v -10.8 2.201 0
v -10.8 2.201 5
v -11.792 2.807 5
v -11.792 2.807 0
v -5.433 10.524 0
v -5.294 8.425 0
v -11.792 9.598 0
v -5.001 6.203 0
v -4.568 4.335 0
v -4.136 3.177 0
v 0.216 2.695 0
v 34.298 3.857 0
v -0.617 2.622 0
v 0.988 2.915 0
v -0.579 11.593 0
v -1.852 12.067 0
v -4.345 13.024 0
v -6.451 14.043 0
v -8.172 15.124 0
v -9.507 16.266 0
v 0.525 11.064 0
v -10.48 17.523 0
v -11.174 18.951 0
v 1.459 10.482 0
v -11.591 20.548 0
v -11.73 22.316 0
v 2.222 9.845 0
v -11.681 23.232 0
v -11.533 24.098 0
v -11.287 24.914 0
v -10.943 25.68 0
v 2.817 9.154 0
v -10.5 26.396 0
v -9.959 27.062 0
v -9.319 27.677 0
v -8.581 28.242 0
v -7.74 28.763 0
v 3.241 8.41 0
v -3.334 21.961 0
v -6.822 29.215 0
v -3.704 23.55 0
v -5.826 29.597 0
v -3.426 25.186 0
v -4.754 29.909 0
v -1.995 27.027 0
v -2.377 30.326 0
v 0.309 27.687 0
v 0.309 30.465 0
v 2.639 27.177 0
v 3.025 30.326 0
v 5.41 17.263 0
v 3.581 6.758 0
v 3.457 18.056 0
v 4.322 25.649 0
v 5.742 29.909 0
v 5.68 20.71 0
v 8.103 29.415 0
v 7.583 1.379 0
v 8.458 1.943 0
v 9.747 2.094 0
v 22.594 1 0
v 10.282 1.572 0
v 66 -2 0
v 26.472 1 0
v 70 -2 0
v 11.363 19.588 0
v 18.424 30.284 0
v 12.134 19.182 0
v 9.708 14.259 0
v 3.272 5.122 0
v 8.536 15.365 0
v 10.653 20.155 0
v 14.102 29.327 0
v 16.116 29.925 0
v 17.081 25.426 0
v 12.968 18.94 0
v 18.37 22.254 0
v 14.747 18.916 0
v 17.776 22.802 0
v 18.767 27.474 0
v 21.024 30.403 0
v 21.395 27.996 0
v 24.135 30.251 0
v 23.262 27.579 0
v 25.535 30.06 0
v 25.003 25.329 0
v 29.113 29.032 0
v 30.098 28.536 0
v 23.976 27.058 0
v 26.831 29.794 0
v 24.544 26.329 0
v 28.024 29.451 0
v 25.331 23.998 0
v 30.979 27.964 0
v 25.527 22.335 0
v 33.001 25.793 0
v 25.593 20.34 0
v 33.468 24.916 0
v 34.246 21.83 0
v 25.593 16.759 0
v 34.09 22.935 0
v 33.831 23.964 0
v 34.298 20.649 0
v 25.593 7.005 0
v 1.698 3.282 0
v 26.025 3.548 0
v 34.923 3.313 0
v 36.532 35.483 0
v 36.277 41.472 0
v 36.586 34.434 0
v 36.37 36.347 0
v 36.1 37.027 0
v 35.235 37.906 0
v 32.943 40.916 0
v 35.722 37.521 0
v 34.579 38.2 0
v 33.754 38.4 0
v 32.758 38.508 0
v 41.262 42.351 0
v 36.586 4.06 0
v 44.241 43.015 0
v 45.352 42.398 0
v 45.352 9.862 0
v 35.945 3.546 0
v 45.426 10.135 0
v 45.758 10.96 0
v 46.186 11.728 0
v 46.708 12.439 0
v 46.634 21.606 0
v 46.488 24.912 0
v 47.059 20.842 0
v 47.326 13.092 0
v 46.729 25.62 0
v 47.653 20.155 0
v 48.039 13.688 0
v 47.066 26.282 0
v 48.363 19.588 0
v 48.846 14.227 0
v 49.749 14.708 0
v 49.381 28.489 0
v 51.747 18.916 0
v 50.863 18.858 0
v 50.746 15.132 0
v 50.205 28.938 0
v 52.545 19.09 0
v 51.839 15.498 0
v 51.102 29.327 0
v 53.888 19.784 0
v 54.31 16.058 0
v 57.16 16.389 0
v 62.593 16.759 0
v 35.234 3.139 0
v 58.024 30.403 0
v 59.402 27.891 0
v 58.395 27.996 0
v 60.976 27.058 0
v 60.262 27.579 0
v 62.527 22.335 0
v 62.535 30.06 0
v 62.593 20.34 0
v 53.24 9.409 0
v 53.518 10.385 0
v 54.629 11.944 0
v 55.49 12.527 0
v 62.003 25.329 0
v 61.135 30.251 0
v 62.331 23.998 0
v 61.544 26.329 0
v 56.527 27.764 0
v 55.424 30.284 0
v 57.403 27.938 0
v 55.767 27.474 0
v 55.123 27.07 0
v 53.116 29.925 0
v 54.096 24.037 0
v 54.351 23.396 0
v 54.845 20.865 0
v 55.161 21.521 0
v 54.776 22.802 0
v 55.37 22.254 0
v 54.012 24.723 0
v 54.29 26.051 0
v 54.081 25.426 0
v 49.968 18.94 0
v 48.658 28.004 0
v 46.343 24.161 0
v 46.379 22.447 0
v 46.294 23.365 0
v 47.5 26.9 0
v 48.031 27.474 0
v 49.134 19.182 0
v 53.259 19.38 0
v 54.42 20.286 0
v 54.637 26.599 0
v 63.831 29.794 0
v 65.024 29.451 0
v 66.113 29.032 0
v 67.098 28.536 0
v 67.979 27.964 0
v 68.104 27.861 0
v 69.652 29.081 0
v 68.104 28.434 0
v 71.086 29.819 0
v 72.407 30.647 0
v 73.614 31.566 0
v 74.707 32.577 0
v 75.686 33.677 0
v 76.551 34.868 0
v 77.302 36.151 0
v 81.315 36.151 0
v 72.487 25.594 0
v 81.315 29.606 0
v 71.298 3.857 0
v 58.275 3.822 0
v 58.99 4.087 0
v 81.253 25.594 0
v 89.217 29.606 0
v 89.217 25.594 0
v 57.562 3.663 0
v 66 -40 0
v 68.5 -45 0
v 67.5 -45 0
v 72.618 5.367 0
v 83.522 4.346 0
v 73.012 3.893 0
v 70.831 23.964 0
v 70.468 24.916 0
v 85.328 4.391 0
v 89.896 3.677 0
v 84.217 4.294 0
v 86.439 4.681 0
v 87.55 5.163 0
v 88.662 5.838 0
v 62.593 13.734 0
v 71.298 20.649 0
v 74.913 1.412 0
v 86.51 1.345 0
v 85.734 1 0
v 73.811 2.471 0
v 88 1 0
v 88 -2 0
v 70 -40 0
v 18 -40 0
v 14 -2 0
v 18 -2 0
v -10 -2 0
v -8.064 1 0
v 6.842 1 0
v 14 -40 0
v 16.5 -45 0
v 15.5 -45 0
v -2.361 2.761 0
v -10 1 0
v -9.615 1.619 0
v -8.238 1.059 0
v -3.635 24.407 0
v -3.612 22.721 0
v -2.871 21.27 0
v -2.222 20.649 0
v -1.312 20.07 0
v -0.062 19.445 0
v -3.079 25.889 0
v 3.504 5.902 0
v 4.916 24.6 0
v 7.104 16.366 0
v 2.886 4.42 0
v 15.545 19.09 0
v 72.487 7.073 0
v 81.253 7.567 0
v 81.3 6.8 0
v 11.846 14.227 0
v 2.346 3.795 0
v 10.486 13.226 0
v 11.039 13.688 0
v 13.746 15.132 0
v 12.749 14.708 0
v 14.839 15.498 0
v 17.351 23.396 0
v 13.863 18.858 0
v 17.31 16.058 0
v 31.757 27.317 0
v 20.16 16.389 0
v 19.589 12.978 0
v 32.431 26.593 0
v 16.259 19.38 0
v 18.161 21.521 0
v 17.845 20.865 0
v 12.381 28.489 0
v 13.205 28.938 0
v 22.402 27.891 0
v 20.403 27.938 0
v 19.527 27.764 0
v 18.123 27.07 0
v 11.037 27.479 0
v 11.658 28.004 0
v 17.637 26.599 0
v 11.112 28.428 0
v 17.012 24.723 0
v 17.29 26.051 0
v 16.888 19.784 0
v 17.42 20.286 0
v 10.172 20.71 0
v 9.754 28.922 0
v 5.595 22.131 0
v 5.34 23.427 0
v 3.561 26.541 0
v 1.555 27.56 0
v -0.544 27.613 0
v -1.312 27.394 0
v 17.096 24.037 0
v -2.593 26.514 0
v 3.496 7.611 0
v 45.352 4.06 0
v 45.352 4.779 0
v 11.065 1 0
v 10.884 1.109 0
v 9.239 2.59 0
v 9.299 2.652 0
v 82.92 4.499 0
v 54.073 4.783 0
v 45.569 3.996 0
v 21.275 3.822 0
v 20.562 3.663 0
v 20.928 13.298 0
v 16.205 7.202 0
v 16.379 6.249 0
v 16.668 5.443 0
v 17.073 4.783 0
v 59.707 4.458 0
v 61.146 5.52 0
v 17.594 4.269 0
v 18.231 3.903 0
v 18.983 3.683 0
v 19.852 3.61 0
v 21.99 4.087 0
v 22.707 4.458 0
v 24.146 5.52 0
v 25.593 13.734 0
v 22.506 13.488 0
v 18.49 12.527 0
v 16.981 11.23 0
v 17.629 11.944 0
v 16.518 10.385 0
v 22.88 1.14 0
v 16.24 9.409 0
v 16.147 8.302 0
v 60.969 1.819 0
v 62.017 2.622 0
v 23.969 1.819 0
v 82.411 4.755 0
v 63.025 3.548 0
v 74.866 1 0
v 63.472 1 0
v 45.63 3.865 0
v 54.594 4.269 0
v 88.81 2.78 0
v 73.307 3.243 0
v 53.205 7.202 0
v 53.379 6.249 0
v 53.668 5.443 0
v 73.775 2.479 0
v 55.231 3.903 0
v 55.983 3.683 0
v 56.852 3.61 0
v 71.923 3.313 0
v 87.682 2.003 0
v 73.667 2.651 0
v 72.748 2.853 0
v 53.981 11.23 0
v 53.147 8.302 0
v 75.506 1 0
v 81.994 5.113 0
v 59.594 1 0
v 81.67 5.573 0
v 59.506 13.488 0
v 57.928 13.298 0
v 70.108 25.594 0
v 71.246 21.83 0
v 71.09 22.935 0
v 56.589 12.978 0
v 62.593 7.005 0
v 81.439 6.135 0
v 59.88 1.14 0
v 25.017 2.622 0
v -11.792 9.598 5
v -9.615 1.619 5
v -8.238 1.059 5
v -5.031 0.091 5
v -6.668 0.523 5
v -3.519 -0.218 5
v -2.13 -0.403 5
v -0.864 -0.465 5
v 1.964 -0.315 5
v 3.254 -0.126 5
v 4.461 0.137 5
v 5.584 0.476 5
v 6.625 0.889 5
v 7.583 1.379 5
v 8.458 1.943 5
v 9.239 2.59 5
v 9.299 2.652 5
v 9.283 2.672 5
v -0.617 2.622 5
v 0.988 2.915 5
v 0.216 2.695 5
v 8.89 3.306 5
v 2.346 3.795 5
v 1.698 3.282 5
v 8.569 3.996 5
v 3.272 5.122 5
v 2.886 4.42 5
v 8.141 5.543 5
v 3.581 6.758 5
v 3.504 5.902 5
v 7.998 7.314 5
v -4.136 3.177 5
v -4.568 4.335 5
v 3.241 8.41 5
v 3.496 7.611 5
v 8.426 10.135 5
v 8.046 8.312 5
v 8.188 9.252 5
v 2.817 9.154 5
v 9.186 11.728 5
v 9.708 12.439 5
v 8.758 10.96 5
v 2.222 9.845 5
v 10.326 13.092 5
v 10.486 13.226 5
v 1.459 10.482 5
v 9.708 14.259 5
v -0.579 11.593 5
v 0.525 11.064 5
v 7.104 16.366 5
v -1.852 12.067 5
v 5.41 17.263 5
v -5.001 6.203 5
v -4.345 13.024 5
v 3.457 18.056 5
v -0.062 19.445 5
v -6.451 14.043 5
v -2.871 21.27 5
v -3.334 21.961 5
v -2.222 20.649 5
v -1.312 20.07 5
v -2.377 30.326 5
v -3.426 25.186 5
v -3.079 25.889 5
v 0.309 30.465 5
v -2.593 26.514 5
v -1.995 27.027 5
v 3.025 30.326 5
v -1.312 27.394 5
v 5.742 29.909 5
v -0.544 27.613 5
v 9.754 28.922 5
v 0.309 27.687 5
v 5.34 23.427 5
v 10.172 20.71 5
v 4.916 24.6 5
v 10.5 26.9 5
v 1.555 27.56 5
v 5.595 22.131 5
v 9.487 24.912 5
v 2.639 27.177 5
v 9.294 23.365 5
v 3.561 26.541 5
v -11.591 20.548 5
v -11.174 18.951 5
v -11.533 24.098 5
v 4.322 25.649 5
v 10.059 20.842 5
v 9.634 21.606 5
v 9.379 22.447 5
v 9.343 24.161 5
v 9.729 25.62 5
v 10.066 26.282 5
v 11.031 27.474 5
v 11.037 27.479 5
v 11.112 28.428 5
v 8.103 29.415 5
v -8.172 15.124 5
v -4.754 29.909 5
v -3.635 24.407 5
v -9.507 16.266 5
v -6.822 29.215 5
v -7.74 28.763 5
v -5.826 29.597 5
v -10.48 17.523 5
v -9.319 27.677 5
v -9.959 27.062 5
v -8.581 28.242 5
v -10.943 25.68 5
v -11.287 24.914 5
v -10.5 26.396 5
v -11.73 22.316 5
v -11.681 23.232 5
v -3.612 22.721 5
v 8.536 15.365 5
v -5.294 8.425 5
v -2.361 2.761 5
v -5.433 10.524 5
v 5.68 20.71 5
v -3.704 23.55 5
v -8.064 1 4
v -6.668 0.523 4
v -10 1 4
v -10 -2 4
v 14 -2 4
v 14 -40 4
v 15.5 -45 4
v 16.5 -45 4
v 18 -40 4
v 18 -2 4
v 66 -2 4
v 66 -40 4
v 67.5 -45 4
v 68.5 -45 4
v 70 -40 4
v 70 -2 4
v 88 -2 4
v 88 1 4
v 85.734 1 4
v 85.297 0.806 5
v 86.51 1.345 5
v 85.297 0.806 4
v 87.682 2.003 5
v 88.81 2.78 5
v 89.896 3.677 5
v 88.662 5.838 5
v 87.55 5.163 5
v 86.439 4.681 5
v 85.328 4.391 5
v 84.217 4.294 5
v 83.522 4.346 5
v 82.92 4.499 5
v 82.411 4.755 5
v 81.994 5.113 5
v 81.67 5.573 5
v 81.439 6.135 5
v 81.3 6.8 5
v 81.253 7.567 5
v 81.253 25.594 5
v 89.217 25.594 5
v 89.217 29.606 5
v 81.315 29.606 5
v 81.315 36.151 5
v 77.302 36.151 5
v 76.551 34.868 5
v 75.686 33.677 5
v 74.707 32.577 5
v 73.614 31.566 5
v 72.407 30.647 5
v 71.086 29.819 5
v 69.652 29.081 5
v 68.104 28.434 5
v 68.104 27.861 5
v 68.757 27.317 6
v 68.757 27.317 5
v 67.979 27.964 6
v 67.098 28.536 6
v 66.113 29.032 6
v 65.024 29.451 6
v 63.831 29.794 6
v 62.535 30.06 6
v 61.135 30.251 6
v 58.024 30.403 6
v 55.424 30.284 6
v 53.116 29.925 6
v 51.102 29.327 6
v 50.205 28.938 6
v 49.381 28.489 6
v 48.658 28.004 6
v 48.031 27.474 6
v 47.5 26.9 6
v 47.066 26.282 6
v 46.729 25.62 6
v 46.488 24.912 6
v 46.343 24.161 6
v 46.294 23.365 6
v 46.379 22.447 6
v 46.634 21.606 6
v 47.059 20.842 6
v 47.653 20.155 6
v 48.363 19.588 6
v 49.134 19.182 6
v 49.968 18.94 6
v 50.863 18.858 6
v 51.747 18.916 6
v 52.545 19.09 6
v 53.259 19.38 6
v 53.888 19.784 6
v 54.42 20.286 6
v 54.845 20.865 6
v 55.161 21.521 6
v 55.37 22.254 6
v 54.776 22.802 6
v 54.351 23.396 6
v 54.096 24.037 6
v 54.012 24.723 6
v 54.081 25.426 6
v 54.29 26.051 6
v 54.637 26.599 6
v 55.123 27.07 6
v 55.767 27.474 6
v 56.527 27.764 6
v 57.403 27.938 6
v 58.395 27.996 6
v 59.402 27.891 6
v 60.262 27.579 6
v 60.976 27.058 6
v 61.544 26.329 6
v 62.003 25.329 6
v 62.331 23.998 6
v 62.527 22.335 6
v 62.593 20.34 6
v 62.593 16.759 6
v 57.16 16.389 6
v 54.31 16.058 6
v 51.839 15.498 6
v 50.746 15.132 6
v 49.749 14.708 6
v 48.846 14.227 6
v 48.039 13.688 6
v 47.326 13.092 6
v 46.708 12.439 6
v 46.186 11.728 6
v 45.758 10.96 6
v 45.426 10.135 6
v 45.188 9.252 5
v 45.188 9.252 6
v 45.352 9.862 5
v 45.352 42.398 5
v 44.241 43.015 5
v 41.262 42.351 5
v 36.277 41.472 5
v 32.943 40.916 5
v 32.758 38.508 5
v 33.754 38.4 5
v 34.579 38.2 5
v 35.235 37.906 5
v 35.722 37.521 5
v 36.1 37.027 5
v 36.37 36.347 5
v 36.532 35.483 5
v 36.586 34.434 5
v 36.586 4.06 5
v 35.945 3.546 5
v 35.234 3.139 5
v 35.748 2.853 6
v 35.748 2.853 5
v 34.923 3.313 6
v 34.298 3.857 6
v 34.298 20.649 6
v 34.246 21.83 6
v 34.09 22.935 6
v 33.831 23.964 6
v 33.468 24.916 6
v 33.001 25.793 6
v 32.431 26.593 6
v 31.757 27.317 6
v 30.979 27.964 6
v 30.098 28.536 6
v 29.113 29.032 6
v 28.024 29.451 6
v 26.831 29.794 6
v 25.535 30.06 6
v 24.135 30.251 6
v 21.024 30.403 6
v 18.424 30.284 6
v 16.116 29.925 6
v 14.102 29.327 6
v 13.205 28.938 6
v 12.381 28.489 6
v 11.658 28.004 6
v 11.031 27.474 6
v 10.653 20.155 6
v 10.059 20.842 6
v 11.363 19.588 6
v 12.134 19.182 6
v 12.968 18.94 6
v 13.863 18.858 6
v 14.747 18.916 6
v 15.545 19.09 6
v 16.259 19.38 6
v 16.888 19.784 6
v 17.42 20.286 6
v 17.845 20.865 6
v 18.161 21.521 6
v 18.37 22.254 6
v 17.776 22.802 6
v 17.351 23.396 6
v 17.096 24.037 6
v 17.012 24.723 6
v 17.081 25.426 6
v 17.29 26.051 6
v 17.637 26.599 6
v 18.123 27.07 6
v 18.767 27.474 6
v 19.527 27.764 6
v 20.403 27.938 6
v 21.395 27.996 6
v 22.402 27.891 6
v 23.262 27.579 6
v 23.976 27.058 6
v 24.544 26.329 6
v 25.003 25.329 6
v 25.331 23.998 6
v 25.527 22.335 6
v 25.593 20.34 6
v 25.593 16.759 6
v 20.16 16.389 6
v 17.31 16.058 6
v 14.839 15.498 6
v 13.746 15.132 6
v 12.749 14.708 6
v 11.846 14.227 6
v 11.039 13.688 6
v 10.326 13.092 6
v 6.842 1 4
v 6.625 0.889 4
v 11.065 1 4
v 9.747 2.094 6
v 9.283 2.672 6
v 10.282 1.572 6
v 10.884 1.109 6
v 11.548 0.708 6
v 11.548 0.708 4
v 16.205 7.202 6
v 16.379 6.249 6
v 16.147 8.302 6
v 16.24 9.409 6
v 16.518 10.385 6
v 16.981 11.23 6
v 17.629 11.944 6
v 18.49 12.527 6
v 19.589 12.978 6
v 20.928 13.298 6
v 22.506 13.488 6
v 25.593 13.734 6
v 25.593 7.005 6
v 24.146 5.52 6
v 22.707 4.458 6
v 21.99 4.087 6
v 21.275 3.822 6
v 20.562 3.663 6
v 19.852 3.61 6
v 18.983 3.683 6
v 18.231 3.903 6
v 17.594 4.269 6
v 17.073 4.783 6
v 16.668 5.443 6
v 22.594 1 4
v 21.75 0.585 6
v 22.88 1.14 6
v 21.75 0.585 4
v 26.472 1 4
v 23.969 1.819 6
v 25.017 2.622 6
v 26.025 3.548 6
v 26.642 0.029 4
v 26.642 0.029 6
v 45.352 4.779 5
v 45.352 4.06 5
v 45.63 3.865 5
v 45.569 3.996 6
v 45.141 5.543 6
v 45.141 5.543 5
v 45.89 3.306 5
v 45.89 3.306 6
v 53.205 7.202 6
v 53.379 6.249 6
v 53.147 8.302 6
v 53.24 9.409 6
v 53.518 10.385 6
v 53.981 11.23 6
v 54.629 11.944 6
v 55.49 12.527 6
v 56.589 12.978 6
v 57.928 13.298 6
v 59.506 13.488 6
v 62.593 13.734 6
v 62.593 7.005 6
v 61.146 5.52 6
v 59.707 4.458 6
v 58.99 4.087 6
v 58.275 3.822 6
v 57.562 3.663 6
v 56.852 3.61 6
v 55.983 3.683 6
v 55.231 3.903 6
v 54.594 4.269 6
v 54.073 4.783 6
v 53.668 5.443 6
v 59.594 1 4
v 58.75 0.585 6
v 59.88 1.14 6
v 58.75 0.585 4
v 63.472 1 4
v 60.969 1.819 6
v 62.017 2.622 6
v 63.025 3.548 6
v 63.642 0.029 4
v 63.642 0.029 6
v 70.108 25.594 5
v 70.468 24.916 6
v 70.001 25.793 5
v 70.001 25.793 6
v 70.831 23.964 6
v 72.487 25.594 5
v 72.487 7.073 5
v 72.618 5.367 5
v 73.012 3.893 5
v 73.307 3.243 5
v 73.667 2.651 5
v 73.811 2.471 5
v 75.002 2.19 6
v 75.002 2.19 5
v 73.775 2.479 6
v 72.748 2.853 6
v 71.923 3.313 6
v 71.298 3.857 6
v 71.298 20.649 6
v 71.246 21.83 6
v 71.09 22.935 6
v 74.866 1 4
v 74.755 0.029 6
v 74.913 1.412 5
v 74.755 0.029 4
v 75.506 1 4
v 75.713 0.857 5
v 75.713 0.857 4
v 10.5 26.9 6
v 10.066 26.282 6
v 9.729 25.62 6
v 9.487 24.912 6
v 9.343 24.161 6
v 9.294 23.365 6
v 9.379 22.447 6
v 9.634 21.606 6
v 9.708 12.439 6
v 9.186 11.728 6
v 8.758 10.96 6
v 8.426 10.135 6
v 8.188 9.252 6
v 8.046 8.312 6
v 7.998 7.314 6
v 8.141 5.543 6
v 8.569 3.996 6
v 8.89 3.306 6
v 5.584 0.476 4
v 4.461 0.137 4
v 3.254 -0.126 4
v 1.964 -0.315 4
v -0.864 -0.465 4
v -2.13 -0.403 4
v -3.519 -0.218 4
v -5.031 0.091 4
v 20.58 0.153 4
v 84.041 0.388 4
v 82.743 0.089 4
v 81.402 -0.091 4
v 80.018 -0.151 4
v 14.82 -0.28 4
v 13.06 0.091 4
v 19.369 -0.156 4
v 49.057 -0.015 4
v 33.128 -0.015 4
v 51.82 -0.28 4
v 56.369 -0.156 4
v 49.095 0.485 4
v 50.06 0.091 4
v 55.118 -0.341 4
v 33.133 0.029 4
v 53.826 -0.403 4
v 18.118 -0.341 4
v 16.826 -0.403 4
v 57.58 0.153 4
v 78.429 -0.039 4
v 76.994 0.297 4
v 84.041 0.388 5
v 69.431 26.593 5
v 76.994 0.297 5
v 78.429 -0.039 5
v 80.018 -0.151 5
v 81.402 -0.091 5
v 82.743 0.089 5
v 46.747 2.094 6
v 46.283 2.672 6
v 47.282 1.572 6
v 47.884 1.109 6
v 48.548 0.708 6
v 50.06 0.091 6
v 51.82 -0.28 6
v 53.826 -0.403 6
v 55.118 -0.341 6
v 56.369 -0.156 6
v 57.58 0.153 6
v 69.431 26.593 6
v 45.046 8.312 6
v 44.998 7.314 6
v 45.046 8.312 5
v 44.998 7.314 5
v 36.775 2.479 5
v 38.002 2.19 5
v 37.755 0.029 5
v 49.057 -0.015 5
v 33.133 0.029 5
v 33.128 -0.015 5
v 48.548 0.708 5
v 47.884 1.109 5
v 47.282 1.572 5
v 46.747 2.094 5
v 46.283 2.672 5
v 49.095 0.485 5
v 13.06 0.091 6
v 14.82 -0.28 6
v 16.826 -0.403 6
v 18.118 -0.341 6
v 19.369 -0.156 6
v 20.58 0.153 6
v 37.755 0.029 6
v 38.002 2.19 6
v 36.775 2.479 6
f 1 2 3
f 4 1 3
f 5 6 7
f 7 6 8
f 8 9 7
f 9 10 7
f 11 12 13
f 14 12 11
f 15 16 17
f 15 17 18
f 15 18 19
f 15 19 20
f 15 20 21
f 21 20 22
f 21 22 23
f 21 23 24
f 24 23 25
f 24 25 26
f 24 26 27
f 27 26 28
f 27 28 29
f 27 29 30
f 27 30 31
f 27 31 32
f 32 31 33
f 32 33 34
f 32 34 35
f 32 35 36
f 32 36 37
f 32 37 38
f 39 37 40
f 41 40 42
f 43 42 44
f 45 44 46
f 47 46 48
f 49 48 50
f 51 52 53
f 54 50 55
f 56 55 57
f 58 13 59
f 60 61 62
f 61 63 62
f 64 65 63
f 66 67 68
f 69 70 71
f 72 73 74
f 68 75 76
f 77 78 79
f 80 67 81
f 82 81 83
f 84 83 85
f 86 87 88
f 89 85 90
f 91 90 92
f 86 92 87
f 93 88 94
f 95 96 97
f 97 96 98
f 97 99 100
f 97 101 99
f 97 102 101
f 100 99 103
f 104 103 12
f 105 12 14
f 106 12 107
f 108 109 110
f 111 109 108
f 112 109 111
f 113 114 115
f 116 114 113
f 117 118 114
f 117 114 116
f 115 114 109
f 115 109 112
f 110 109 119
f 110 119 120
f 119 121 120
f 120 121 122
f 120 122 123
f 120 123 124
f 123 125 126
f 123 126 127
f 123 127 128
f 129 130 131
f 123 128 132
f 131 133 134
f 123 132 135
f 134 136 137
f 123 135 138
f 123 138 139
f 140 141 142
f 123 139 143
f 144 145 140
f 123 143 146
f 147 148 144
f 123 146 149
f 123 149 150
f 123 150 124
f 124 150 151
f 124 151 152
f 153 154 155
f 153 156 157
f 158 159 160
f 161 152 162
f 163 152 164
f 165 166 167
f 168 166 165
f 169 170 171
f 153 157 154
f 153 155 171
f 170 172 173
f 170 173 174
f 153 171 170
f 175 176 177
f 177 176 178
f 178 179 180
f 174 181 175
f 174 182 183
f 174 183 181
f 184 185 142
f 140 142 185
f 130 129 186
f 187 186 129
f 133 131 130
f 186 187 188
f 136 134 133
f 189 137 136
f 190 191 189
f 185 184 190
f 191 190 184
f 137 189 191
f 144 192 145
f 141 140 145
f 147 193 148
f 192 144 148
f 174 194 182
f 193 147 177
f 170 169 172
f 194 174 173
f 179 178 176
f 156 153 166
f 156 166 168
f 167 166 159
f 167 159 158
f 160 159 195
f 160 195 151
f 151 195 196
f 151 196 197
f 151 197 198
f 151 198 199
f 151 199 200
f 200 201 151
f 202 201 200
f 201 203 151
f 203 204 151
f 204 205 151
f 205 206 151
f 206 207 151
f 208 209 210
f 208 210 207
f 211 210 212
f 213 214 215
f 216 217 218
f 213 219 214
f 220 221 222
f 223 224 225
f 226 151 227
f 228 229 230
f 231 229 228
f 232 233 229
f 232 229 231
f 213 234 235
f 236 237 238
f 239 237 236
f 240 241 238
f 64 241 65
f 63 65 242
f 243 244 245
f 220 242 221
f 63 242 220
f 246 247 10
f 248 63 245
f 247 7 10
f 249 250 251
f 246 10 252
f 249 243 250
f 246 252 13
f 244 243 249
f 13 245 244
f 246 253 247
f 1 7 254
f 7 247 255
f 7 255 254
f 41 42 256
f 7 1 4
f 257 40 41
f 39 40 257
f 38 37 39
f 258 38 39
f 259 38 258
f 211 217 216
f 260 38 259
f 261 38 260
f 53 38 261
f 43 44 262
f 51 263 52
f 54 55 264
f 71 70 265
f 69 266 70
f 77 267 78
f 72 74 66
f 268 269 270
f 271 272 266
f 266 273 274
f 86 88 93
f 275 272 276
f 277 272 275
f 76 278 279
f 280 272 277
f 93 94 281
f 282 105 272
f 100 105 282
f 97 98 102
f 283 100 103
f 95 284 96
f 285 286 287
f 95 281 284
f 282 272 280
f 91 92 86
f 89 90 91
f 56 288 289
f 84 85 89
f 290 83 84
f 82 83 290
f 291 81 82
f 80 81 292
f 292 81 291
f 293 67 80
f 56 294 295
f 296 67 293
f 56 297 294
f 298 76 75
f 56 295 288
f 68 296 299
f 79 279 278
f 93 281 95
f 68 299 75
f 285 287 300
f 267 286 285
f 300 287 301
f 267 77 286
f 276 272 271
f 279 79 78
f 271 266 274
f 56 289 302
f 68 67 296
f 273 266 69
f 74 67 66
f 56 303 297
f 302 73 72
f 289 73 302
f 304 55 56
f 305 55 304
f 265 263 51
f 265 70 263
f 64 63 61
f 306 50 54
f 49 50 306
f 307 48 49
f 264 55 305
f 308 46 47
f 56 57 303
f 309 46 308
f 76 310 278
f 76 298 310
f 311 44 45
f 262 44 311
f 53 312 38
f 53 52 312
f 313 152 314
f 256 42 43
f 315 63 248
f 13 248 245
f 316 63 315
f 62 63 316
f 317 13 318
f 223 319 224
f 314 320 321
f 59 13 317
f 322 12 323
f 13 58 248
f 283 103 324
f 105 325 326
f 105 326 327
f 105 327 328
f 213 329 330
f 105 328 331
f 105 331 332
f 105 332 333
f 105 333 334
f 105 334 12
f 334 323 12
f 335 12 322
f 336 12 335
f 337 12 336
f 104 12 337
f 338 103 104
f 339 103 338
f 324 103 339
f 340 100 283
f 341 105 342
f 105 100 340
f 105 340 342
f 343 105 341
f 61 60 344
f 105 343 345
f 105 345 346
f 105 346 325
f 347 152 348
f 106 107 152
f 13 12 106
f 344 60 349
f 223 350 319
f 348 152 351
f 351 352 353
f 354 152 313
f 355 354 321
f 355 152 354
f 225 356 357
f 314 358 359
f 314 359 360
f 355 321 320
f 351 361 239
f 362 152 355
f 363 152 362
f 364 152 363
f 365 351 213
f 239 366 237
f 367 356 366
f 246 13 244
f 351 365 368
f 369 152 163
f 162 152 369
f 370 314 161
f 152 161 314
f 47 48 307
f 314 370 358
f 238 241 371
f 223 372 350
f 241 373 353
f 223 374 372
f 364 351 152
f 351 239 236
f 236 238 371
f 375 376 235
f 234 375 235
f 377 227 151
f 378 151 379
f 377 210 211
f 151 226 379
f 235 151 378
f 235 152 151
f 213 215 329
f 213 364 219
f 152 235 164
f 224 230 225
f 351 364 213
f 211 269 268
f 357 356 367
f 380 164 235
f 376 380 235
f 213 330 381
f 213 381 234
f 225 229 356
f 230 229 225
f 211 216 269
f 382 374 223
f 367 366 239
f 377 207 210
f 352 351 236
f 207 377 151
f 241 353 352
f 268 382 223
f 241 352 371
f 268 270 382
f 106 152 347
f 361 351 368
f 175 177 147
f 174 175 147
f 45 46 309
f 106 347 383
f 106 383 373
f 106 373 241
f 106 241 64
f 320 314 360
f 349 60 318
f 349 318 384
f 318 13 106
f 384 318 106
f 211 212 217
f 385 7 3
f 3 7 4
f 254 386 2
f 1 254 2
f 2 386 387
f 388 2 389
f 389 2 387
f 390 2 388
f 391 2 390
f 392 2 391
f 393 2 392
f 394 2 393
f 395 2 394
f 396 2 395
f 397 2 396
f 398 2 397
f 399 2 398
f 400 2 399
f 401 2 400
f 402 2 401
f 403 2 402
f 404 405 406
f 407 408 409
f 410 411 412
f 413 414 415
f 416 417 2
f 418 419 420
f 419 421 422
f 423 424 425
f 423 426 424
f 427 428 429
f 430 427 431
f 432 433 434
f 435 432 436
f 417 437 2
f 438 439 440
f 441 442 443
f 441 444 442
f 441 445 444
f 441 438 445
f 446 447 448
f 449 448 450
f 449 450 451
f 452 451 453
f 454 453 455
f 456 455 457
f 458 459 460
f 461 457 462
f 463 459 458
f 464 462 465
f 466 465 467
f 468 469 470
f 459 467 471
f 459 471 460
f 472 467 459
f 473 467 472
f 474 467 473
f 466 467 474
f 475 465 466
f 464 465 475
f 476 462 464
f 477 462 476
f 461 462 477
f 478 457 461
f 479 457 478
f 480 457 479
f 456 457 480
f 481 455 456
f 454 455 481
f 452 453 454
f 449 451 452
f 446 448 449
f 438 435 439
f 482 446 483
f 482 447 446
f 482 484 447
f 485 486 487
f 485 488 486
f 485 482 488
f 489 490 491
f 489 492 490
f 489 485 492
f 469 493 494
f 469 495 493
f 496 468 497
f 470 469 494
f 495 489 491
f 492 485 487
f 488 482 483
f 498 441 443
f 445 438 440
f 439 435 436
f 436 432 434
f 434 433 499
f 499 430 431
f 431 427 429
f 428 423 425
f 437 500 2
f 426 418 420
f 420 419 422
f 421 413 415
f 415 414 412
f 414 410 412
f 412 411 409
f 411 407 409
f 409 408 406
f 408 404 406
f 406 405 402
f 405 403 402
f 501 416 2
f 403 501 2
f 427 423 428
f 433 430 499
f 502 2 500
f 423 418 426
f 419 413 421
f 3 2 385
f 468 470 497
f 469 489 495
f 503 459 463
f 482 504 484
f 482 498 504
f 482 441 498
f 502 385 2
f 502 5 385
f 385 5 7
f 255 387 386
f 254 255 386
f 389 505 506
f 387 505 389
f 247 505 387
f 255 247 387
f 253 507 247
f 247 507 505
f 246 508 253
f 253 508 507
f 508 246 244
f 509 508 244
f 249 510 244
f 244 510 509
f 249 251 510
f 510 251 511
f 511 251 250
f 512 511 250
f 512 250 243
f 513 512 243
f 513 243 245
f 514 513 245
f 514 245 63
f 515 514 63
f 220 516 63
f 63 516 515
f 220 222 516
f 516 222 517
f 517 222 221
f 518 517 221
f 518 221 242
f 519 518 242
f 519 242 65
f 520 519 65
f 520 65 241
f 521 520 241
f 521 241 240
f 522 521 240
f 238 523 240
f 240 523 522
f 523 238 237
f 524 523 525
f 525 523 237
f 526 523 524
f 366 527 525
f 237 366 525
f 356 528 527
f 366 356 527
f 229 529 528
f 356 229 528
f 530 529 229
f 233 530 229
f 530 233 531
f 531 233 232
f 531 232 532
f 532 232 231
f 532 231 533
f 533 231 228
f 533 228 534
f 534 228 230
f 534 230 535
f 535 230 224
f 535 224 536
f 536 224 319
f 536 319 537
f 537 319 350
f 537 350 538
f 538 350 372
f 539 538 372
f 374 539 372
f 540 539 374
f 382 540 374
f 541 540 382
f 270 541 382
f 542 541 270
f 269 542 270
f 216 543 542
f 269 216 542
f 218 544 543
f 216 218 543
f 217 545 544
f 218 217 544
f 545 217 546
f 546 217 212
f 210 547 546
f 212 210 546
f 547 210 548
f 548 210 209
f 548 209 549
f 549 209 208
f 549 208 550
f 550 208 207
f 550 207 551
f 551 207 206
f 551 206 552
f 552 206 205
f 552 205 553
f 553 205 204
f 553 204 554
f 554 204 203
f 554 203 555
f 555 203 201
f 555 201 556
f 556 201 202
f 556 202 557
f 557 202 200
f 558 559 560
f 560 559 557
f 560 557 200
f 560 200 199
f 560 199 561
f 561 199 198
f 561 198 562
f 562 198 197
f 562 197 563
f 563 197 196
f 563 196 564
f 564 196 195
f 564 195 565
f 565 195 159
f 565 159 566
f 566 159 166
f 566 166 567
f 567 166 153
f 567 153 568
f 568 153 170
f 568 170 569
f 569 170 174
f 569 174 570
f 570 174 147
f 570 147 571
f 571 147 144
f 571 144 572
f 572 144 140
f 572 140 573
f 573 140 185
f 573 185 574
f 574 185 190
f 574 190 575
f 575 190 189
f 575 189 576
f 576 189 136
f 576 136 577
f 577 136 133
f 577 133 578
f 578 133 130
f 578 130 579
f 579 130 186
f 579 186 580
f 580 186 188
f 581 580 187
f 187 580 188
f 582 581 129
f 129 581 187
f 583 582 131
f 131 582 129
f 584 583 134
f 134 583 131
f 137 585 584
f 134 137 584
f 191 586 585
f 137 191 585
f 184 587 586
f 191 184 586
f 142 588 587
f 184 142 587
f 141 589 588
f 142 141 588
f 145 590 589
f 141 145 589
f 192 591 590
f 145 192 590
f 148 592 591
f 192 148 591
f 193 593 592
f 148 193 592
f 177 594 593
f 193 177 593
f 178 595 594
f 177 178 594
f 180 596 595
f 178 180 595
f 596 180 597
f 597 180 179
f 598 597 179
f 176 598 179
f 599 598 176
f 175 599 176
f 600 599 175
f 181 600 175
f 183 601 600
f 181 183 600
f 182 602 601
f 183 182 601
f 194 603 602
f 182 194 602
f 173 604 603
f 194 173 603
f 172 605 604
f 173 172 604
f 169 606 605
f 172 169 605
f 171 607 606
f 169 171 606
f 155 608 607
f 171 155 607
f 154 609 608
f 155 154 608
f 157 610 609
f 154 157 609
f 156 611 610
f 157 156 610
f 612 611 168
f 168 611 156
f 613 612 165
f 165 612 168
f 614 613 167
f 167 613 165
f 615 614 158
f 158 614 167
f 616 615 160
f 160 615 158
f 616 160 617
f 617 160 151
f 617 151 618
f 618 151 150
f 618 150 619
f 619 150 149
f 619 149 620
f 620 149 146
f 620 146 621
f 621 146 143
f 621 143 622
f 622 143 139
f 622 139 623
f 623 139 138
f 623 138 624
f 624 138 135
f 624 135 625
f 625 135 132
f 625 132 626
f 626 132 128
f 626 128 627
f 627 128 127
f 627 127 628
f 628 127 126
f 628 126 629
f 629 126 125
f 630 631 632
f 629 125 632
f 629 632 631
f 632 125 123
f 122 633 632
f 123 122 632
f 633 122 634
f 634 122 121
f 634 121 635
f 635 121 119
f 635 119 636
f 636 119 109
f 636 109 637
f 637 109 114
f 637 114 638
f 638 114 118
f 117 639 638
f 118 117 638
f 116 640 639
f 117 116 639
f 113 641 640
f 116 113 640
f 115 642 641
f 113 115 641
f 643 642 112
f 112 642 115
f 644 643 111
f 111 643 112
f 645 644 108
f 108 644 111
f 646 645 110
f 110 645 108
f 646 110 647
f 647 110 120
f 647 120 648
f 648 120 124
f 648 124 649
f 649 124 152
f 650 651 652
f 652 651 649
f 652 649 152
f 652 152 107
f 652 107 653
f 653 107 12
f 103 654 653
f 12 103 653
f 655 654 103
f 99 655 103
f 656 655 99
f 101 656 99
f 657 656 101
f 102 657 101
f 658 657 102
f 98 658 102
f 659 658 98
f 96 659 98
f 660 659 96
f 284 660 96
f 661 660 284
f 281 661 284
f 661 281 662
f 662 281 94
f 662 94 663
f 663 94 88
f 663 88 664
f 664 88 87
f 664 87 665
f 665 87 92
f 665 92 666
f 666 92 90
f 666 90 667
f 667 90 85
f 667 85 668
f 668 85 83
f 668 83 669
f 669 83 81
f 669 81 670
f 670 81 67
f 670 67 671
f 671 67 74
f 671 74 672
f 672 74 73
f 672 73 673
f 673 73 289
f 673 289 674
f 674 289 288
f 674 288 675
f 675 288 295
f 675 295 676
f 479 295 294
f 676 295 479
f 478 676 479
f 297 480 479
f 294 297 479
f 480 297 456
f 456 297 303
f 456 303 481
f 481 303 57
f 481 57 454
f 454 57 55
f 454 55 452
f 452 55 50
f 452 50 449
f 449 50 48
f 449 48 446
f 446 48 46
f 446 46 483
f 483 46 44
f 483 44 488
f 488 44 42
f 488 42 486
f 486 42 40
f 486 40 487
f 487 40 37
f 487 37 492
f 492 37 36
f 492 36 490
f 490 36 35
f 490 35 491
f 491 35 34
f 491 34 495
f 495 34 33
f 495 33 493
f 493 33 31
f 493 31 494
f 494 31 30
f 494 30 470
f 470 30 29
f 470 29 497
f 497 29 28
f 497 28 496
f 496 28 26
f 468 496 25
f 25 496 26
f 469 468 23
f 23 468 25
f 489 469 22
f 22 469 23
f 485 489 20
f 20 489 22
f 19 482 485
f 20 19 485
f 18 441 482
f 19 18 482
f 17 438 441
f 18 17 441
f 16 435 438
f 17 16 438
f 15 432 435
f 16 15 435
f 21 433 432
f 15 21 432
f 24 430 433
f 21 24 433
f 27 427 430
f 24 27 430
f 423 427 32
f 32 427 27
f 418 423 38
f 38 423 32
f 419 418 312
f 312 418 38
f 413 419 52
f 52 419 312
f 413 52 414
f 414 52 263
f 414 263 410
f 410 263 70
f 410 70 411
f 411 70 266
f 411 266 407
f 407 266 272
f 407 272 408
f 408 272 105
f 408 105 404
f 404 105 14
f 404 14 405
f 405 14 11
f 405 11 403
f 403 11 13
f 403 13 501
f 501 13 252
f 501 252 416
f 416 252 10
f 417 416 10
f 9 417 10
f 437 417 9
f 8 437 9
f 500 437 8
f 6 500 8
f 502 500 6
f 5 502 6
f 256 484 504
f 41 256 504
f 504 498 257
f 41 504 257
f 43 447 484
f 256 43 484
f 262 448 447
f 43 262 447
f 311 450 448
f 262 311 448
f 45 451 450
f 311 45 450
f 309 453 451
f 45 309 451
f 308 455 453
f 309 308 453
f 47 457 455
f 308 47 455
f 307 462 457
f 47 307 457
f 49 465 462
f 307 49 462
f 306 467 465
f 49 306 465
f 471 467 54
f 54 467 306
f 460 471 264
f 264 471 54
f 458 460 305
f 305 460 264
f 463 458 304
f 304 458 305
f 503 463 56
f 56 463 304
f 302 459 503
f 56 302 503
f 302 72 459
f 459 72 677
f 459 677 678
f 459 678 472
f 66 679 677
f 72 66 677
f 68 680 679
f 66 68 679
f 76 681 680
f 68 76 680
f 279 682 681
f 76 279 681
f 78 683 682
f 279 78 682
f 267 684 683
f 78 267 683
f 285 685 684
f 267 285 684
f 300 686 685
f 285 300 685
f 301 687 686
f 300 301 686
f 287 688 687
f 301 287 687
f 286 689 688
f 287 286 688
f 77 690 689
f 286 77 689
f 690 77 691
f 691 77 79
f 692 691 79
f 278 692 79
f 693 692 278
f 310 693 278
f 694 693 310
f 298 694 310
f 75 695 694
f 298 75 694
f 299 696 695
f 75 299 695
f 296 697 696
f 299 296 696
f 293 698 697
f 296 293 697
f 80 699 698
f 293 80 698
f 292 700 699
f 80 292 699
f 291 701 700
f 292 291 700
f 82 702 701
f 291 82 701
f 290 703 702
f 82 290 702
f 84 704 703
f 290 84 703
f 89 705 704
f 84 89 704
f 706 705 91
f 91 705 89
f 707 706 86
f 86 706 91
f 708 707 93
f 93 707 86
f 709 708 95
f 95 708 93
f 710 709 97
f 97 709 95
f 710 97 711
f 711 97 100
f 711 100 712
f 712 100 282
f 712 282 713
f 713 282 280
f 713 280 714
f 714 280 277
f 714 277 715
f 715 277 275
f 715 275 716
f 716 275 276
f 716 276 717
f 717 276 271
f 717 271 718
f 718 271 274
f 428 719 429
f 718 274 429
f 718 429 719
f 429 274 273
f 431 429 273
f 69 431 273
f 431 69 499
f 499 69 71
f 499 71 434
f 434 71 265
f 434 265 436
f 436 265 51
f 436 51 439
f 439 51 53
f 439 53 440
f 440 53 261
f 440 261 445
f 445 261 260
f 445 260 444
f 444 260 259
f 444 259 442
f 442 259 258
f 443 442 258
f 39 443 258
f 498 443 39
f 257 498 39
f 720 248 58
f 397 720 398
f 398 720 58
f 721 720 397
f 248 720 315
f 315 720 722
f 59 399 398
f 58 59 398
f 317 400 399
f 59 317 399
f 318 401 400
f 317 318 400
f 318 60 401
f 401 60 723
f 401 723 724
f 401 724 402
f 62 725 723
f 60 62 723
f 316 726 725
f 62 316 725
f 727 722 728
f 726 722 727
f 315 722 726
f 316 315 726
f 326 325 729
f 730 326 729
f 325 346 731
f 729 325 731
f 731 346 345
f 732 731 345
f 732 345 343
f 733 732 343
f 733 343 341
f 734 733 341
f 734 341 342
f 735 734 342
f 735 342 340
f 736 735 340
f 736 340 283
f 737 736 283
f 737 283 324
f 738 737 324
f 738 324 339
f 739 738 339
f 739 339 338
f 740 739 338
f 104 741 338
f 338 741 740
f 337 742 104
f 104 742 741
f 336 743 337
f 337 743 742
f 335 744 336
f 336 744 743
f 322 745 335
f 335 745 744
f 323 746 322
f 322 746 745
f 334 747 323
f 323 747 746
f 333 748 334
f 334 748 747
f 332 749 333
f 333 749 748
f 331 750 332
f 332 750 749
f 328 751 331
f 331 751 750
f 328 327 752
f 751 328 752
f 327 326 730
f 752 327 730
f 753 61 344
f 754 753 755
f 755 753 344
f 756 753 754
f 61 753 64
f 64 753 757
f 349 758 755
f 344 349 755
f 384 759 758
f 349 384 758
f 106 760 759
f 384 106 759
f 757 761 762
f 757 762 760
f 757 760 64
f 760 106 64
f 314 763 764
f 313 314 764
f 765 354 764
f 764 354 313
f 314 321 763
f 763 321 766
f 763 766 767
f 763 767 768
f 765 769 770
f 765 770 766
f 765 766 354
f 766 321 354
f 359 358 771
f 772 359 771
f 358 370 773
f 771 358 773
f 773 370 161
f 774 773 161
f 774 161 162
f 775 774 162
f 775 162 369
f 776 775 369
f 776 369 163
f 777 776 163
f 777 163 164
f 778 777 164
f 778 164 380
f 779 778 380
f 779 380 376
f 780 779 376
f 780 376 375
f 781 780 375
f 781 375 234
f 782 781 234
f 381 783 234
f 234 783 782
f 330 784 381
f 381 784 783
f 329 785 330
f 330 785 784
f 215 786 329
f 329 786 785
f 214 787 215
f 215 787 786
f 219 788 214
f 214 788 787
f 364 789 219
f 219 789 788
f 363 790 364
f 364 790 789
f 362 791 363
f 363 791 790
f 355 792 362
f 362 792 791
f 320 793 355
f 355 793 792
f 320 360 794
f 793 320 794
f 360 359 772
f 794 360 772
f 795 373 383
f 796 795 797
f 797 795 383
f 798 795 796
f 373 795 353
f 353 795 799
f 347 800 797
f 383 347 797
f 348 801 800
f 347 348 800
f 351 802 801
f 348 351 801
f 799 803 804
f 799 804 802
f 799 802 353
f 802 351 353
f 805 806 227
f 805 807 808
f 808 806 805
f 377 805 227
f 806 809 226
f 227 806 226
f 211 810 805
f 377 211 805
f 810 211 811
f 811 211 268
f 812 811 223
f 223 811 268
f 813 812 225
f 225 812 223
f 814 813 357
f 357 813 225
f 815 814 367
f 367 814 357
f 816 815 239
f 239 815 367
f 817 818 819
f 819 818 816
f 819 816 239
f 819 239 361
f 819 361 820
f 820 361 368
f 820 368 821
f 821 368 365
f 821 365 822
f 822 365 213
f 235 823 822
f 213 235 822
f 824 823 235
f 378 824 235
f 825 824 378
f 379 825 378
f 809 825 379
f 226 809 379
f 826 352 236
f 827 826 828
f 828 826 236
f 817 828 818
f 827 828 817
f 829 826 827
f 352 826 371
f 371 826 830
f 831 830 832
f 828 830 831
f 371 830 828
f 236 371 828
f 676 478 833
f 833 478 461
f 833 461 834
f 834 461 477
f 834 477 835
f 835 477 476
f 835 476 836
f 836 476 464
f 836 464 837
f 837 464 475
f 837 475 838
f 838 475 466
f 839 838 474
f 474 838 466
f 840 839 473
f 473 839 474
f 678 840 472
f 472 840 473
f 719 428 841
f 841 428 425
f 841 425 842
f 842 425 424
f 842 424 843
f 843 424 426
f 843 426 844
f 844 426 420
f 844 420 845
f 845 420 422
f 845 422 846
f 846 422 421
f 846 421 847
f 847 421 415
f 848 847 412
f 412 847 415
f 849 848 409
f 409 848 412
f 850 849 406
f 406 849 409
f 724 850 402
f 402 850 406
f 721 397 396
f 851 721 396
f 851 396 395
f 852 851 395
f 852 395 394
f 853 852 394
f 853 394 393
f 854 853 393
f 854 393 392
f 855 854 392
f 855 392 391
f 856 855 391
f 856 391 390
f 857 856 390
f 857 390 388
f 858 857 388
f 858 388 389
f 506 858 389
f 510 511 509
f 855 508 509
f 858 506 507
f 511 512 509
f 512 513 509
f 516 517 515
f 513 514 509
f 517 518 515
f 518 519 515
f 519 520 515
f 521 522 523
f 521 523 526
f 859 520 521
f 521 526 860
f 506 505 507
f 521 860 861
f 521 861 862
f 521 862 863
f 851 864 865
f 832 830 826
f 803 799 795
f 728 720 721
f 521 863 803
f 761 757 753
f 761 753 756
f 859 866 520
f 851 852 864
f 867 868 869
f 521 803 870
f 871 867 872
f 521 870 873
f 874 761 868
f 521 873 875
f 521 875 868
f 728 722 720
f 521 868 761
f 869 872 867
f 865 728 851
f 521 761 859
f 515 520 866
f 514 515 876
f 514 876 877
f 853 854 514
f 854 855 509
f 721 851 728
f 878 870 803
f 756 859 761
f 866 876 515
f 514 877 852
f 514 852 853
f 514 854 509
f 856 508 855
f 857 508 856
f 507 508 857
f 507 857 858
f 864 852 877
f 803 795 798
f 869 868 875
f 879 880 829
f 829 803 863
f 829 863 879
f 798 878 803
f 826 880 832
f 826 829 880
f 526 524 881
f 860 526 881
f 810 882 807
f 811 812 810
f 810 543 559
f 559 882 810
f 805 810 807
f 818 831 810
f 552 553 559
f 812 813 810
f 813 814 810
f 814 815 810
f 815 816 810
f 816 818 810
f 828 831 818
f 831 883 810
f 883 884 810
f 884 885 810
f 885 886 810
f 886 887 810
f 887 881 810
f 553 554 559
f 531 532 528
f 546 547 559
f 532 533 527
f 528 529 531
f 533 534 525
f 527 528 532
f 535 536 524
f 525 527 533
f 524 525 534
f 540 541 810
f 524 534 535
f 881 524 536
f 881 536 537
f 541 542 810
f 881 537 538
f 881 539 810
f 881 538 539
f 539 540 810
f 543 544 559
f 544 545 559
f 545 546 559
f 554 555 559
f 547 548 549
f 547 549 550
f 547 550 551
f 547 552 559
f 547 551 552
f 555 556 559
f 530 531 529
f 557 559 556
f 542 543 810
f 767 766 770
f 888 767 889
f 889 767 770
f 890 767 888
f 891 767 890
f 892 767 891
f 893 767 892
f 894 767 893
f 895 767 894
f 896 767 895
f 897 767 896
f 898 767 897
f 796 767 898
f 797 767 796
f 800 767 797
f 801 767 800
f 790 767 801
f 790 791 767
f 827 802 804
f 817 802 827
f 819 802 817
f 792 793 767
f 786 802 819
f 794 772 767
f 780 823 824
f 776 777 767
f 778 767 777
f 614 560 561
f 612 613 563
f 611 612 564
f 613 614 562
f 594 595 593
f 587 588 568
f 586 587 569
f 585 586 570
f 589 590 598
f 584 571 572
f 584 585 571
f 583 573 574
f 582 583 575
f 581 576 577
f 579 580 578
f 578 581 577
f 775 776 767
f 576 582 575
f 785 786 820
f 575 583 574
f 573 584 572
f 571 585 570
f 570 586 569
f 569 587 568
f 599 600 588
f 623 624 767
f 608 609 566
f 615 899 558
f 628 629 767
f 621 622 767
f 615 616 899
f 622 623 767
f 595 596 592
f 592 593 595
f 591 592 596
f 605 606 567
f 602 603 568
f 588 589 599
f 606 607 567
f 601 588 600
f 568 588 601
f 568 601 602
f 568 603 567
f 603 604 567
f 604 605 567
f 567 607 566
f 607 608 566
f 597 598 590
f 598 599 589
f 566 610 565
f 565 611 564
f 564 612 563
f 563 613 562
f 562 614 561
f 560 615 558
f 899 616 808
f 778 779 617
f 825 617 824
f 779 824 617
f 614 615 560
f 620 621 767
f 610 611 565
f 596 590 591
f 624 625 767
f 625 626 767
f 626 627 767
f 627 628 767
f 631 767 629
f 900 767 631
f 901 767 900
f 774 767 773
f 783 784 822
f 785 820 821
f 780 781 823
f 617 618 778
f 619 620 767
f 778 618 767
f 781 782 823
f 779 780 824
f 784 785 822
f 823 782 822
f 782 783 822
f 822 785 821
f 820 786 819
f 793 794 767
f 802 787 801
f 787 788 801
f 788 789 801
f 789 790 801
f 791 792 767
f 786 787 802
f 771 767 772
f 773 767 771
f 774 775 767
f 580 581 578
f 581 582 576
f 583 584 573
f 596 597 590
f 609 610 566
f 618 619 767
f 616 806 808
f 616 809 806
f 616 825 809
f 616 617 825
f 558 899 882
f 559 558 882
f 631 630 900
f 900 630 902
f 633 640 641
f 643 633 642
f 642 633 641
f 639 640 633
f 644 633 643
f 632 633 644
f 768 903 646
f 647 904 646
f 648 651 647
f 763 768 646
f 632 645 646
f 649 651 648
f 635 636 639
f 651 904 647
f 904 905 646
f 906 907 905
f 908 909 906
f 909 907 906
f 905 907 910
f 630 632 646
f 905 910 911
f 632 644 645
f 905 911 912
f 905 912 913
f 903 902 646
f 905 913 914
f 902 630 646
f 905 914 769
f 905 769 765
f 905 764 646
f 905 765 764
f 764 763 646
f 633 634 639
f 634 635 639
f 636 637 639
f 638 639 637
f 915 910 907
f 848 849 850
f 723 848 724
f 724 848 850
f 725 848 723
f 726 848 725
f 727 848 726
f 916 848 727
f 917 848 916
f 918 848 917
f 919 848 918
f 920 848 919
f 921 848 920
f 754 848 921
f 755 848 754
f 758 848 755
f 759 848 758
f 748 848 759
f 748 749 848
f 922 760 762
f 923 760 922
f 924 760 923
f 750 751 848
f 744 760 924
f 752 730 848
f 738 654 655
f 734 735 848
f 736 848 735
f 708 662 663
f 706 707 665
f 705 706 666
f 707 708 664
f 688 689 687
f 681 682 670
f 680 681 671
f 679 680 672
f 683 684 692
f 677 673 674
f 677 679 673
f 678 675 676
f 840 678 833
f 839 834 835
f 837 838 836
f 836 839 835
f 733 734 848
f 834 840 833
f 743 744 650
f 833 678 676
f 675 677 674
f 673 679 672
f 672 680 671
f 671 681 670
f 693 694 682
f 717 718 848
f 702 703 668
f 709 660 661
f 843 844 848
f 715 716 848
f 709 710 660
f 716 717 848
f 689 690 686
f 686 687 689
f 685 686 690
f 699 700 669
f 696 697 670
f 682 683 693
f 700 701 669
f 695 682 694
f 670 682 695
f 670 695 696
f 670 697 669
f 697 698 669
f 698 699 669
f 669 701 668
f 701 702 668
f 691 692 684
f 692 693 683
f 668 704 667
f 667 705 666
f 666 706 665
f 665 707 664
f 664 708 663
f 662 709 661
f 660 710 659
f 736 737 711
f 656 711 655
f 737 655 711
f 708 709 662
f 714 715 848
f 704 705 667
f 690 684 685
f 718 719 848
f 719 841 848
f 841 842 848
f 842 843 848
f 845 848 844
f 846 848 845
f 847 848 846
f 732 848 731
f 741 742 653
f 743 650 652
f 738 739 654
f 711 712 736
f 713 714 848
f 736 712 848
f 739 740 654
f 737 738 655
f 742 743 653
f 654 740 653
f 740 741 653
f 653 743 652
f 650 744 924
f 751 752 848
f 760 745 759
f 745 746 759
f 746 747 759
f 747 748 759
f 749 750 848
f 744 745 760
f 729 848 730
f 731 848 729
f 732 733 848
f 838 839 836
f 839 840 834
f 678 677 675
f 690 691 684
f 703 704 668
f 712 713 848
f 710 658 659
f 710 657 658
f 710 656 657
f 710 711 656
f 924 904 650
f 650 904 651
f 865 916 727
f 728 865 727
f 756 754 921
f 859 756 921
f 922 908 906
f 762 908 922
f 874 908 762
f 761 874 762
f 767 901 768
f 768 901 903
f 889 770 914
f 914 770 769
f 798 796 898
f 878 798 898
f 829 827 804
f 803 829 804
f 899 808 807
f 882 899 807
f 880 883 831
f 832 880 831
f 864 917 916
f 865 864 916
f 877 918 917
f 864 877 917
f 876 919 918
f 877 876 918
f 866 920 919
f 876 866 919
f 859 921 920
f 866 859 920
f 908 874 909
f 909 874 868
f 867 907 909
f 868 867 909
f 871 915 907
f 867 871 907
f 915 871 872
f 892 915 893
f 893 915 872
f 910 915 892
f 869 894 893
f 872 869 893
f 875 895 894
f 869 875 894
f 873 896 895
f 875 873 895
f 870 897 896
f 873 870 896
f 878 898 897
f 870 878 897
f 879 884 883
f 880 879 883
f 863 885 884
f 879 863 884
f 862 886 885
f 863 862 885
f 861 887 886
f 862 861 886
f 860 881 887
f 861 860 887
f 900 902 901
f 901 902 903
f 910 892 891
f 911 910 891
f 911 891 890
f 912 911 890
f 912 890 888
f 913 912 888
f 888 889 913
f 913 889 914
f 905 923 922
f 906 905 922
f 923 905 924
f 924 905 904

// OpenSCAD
fudge = 0.1;


include <letters.scad>;

module nail(l,w,h){
	hull(){
	translate([-w/2,5,0]) cube([w,l,h]);
	translate([-0.5,0,0]) cube([1,1,h]);
	}
}

translate([0,15,0]) letter_s(5);
translate([23,15.0,0]) letter_a(6);
translate([41,21.5,0]) letter_l(5);
translate([60,15.0,0]) letter_a(6);
translate([79,18,0]) letter_t(5);


translate([-10,-2,0]) cube([98,3,4]);

translate([16,-45,0]) nail(40,4,4);
translate([68,-45,0]) nail(40,4,4);	
